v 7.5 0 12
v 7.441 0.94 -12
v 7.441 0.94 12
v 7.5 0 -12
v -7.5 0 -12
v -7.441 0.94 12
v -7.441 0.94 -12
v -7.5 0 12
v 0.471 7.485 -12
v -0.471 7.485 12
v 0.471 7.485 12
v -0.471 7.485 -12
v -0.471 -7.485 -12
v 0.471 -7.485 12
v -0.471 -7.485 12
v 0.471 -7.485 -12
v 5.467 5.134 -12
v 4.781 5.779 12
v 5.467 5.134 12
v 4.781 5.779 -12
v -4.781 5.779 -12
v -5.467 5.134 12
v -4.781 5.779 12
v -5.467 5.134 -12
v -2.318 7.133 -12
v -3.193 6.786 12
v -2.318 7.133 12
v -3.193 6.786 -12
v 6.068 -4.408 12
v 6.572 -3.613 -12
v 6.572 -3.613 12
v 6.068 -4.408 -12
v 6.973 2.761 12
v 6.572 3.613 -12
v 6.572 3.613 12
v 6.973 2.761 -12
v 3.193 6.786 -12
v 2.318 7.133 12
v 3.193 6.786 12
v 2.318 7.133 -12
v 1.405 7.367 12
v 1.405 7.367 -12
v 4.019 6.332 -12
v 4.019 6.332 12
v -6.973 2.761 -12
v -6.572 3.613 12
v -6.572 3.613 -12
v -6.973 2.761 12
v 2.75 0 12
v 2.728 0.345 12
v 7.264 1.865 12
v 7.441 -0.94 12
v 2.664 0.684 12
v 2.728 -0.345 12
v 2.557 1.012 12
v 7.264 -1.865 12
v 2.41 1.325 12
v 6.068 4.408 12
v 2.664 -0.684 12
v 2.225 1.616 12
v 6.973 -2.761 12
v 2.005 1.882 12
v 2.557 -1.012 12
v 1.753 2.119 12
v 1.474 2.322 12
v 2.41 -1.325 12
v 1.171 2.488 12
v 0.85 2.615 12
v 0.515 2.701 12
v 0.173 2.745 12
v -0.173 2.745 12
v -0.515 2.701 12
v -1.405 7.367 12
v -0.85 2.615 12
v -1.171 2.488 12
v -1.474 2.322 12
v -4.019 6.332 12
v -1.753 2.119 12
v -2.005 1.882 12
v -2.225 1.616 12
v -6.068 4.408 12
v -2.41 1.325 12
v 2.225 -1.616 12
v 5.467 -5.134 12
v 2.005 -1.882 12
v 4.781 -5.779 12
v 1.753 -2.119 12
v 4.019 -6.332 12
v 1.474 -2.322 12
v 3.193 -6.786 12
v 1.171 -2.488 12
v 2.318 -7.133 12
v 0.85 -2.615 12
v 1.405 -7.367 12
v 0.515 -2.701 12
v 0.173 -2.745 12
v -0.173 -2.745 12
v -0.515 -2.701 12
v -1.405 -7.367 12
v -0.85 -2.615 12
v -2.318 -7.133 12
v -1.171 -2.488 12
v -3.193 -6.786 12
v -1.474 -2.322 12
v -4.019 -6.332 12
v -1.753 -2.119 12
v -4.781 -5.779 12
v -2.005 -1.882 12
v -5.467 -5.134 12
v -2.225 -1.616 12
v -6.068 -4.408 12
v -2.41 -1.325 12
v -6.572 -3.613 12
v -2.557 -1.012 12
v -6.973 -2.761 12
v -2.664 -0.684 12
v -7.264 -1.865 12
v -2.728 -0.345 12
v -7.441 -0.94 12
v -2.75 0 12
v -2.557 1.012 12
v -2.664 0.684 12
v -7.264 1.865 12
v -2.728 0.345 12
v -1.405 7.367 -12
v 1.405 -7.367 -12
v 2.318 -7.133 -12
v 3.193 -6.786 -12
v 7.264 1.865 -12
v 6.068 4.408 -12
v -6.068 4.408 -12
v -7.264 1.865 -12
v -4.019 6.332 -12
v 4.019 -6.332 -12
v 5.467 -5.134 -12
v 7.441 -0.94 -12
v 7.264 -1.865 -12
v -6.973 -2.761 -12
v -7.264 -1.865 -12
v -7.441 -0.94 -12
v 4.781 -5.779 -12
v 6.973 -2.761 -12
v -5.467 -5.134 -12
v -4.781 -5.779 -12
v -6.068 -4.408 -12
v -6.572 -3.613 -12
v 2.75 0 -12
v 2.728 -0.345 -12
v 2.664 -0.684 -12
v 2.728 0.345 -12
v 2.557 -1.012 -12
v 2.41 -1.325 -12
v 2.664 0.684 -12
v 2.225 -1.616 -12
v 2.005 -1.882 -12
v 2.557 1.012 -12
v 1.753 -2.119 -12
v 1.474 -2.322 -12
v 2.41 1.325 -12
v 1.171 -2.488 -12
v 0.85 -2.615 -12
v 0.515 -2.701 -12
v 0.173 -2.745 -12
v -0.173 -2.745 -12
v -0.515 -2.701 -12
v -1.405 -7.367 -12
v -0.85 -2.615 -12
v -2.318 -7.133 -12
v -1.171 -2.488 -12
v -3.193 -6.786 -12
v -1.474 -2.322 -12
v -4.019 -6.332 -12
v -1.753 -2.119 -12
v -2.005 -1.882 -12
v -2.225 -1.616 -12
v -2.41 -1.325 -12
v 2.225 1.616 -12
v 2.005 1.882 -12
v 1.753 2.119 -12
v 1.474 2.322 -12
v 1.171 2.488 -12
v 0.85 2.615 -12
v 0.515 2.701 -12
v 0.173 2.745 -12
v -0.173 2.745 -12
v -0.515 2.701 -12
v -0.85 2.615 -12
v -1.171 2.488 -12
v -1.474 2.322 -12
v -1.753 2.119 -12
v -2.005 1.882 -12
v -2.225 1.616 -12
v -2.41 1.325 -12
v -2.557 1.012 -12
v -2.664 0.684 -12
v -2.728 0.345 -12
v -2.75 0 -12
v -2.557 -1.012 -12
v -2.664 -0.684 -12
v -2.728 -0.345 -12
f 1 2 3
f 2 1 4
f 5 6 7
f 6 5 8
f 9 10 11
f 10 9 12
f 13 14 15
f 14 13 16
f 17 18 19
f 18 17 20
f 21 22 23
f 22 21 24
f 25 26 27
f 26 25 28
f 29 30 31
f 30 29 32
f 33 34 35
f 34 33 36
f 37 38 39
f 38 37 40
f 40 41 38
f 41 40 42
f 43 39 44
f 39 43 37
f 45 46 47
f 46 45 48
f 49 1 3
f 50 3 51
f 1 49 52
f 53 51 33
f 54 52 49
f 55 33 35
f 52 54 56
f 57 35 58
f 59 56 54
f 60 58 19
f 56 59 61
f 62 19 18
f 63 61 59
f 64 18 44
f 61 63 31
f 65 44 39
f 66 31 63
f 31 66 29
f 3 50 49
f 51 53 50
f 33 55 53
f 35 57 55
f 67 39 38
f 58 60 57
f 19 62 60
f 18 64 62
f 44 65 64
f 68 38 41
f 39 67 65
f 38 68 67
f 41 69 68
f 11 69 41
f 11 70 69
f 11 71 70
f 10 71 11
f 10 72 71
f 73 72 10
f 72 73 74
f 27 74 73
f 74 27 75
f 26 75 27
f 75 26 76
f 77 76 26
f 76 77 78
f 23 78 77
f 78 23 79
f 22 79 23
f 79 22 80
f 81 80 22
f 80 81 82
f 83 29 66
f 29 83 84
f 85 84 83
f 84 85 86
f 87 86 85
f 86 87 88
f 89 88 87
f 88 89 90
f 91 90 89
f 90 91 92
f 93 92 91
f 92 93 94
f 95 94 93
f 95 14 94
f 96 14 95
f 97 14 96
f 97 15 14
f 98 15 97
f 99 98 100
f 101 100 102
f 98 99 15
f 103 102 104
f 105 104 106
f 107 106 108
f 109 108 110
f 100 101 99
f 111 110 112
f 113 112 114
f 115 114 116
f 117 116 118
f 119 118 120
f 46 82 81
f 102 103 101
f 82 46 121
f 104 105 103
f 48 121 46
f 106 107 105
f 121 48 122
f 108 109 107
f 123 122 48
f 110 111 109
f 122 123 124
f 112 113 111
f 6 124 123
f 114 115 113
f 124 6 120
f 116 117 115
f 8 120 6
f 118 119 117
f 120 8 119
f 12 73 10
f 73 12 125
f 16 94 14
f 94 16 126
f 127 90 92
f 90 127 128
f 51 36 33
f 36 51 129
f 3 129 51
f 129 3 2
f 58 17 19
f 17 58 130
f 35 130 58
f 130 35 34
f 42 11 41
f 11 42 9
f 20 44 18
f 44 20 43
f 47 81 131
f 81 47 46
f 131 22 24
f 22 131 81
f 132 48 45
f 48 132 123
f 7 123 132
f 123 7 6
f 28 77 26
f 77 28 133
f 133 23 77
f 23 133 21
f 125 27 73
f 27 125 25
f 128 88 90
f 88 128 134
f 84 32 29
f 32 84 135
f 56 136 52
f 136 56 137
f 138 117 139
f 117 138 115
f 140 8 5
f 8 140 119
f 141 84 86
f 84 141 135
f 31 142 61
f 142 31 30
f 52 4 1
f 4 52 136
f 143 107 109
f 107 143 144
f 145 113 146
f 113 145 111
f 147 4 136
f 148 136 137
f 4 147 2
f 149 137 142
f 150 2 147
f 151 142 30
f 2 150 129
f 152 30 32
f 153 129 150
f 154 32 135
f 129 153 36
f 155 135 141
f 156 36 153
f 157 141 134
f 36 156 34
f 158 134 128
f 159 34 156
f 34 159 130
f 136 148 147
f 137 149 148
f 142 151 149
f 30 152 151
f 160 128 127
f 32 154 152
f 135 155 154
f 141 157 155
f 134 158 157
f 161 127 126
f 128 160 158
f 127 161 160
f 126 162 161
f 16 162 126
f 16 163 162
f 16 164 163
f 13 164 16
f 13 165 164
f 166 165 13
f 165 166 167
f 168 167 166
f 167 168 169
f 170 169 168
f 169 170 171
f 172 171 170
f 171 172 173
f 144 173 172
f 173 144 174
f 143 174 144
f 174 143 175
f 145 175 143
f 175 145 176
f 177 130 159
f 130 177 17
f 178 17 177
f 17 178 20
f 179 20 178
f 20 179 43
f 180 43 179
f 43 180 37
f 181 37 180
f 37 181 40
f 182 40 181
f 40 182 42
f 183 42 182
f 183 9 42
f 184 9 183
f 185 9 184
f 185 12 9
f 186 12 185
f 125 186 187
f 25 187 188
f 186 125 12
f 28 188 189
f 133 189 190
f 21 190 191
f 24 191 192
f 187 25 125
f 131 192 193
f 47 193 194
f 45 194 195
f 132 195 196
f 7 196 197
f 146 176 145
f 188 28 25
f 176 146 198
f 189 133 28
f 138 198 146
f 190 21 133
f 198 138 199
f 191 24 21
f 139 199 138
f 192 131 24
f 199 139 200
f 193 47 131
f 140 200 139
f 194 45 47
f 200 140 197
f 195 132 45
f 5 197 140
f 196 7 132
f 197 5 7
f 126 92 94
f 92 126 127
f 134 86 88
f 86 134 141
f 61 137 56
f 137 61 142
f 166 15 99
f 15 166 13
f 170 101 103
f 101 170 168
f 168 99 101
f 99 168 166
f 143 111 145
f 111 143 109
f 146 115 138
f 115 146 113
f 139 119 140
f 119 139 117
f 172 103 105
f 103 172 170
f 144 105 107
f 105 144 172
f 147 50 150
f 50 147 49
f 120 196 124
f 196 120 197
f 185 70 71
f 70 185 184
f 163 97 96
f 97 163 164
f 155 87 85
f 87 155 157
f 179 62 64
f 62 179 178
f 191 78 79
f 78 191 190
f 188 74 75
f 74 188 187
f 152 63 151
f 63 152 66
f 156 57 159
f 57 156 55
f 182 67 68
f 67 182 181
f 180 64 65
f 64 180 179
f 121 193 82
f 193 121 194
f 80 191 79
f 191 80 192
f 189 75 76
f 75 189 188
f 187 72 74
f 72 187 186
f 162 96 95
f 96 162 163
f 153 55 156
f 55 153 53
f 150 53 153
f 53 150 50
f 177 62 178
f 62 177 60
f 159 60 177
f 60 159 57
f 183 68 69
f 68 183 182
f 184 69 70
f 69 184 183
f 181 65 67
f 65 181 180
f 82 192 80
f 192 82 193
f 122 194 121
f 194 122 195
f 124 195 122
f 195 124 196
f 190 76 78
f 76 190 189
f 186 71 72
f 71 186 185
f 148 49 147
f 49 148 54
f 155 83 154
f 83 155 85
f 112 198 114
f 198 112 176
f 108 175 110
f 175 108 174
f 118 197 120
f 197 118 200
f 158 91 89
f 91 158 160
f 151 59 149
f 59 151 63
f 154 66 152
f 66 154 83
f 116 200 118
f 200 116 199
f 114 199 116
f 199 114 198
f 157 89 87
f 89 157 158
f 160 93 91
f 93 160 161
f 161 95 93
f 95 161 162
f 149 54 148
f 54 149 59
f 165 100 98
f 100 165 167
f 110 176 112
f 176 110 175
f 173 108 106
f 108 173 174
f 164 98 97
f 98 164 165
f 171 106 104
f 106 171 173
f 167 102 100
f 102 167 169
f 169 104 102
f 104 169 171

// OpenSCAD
$fn = 50;


difference() {
	union() {
		translate(v = [0, 0, -12.0000000000]) {
			cylinder(h = 24, r = 7.5000000000);
		}
	}
	union() {
		translate(v = [0, 0, -100.0000000000]) {
			cylinder(h = 200, r = 2.7500000000);
		}
	}
}
